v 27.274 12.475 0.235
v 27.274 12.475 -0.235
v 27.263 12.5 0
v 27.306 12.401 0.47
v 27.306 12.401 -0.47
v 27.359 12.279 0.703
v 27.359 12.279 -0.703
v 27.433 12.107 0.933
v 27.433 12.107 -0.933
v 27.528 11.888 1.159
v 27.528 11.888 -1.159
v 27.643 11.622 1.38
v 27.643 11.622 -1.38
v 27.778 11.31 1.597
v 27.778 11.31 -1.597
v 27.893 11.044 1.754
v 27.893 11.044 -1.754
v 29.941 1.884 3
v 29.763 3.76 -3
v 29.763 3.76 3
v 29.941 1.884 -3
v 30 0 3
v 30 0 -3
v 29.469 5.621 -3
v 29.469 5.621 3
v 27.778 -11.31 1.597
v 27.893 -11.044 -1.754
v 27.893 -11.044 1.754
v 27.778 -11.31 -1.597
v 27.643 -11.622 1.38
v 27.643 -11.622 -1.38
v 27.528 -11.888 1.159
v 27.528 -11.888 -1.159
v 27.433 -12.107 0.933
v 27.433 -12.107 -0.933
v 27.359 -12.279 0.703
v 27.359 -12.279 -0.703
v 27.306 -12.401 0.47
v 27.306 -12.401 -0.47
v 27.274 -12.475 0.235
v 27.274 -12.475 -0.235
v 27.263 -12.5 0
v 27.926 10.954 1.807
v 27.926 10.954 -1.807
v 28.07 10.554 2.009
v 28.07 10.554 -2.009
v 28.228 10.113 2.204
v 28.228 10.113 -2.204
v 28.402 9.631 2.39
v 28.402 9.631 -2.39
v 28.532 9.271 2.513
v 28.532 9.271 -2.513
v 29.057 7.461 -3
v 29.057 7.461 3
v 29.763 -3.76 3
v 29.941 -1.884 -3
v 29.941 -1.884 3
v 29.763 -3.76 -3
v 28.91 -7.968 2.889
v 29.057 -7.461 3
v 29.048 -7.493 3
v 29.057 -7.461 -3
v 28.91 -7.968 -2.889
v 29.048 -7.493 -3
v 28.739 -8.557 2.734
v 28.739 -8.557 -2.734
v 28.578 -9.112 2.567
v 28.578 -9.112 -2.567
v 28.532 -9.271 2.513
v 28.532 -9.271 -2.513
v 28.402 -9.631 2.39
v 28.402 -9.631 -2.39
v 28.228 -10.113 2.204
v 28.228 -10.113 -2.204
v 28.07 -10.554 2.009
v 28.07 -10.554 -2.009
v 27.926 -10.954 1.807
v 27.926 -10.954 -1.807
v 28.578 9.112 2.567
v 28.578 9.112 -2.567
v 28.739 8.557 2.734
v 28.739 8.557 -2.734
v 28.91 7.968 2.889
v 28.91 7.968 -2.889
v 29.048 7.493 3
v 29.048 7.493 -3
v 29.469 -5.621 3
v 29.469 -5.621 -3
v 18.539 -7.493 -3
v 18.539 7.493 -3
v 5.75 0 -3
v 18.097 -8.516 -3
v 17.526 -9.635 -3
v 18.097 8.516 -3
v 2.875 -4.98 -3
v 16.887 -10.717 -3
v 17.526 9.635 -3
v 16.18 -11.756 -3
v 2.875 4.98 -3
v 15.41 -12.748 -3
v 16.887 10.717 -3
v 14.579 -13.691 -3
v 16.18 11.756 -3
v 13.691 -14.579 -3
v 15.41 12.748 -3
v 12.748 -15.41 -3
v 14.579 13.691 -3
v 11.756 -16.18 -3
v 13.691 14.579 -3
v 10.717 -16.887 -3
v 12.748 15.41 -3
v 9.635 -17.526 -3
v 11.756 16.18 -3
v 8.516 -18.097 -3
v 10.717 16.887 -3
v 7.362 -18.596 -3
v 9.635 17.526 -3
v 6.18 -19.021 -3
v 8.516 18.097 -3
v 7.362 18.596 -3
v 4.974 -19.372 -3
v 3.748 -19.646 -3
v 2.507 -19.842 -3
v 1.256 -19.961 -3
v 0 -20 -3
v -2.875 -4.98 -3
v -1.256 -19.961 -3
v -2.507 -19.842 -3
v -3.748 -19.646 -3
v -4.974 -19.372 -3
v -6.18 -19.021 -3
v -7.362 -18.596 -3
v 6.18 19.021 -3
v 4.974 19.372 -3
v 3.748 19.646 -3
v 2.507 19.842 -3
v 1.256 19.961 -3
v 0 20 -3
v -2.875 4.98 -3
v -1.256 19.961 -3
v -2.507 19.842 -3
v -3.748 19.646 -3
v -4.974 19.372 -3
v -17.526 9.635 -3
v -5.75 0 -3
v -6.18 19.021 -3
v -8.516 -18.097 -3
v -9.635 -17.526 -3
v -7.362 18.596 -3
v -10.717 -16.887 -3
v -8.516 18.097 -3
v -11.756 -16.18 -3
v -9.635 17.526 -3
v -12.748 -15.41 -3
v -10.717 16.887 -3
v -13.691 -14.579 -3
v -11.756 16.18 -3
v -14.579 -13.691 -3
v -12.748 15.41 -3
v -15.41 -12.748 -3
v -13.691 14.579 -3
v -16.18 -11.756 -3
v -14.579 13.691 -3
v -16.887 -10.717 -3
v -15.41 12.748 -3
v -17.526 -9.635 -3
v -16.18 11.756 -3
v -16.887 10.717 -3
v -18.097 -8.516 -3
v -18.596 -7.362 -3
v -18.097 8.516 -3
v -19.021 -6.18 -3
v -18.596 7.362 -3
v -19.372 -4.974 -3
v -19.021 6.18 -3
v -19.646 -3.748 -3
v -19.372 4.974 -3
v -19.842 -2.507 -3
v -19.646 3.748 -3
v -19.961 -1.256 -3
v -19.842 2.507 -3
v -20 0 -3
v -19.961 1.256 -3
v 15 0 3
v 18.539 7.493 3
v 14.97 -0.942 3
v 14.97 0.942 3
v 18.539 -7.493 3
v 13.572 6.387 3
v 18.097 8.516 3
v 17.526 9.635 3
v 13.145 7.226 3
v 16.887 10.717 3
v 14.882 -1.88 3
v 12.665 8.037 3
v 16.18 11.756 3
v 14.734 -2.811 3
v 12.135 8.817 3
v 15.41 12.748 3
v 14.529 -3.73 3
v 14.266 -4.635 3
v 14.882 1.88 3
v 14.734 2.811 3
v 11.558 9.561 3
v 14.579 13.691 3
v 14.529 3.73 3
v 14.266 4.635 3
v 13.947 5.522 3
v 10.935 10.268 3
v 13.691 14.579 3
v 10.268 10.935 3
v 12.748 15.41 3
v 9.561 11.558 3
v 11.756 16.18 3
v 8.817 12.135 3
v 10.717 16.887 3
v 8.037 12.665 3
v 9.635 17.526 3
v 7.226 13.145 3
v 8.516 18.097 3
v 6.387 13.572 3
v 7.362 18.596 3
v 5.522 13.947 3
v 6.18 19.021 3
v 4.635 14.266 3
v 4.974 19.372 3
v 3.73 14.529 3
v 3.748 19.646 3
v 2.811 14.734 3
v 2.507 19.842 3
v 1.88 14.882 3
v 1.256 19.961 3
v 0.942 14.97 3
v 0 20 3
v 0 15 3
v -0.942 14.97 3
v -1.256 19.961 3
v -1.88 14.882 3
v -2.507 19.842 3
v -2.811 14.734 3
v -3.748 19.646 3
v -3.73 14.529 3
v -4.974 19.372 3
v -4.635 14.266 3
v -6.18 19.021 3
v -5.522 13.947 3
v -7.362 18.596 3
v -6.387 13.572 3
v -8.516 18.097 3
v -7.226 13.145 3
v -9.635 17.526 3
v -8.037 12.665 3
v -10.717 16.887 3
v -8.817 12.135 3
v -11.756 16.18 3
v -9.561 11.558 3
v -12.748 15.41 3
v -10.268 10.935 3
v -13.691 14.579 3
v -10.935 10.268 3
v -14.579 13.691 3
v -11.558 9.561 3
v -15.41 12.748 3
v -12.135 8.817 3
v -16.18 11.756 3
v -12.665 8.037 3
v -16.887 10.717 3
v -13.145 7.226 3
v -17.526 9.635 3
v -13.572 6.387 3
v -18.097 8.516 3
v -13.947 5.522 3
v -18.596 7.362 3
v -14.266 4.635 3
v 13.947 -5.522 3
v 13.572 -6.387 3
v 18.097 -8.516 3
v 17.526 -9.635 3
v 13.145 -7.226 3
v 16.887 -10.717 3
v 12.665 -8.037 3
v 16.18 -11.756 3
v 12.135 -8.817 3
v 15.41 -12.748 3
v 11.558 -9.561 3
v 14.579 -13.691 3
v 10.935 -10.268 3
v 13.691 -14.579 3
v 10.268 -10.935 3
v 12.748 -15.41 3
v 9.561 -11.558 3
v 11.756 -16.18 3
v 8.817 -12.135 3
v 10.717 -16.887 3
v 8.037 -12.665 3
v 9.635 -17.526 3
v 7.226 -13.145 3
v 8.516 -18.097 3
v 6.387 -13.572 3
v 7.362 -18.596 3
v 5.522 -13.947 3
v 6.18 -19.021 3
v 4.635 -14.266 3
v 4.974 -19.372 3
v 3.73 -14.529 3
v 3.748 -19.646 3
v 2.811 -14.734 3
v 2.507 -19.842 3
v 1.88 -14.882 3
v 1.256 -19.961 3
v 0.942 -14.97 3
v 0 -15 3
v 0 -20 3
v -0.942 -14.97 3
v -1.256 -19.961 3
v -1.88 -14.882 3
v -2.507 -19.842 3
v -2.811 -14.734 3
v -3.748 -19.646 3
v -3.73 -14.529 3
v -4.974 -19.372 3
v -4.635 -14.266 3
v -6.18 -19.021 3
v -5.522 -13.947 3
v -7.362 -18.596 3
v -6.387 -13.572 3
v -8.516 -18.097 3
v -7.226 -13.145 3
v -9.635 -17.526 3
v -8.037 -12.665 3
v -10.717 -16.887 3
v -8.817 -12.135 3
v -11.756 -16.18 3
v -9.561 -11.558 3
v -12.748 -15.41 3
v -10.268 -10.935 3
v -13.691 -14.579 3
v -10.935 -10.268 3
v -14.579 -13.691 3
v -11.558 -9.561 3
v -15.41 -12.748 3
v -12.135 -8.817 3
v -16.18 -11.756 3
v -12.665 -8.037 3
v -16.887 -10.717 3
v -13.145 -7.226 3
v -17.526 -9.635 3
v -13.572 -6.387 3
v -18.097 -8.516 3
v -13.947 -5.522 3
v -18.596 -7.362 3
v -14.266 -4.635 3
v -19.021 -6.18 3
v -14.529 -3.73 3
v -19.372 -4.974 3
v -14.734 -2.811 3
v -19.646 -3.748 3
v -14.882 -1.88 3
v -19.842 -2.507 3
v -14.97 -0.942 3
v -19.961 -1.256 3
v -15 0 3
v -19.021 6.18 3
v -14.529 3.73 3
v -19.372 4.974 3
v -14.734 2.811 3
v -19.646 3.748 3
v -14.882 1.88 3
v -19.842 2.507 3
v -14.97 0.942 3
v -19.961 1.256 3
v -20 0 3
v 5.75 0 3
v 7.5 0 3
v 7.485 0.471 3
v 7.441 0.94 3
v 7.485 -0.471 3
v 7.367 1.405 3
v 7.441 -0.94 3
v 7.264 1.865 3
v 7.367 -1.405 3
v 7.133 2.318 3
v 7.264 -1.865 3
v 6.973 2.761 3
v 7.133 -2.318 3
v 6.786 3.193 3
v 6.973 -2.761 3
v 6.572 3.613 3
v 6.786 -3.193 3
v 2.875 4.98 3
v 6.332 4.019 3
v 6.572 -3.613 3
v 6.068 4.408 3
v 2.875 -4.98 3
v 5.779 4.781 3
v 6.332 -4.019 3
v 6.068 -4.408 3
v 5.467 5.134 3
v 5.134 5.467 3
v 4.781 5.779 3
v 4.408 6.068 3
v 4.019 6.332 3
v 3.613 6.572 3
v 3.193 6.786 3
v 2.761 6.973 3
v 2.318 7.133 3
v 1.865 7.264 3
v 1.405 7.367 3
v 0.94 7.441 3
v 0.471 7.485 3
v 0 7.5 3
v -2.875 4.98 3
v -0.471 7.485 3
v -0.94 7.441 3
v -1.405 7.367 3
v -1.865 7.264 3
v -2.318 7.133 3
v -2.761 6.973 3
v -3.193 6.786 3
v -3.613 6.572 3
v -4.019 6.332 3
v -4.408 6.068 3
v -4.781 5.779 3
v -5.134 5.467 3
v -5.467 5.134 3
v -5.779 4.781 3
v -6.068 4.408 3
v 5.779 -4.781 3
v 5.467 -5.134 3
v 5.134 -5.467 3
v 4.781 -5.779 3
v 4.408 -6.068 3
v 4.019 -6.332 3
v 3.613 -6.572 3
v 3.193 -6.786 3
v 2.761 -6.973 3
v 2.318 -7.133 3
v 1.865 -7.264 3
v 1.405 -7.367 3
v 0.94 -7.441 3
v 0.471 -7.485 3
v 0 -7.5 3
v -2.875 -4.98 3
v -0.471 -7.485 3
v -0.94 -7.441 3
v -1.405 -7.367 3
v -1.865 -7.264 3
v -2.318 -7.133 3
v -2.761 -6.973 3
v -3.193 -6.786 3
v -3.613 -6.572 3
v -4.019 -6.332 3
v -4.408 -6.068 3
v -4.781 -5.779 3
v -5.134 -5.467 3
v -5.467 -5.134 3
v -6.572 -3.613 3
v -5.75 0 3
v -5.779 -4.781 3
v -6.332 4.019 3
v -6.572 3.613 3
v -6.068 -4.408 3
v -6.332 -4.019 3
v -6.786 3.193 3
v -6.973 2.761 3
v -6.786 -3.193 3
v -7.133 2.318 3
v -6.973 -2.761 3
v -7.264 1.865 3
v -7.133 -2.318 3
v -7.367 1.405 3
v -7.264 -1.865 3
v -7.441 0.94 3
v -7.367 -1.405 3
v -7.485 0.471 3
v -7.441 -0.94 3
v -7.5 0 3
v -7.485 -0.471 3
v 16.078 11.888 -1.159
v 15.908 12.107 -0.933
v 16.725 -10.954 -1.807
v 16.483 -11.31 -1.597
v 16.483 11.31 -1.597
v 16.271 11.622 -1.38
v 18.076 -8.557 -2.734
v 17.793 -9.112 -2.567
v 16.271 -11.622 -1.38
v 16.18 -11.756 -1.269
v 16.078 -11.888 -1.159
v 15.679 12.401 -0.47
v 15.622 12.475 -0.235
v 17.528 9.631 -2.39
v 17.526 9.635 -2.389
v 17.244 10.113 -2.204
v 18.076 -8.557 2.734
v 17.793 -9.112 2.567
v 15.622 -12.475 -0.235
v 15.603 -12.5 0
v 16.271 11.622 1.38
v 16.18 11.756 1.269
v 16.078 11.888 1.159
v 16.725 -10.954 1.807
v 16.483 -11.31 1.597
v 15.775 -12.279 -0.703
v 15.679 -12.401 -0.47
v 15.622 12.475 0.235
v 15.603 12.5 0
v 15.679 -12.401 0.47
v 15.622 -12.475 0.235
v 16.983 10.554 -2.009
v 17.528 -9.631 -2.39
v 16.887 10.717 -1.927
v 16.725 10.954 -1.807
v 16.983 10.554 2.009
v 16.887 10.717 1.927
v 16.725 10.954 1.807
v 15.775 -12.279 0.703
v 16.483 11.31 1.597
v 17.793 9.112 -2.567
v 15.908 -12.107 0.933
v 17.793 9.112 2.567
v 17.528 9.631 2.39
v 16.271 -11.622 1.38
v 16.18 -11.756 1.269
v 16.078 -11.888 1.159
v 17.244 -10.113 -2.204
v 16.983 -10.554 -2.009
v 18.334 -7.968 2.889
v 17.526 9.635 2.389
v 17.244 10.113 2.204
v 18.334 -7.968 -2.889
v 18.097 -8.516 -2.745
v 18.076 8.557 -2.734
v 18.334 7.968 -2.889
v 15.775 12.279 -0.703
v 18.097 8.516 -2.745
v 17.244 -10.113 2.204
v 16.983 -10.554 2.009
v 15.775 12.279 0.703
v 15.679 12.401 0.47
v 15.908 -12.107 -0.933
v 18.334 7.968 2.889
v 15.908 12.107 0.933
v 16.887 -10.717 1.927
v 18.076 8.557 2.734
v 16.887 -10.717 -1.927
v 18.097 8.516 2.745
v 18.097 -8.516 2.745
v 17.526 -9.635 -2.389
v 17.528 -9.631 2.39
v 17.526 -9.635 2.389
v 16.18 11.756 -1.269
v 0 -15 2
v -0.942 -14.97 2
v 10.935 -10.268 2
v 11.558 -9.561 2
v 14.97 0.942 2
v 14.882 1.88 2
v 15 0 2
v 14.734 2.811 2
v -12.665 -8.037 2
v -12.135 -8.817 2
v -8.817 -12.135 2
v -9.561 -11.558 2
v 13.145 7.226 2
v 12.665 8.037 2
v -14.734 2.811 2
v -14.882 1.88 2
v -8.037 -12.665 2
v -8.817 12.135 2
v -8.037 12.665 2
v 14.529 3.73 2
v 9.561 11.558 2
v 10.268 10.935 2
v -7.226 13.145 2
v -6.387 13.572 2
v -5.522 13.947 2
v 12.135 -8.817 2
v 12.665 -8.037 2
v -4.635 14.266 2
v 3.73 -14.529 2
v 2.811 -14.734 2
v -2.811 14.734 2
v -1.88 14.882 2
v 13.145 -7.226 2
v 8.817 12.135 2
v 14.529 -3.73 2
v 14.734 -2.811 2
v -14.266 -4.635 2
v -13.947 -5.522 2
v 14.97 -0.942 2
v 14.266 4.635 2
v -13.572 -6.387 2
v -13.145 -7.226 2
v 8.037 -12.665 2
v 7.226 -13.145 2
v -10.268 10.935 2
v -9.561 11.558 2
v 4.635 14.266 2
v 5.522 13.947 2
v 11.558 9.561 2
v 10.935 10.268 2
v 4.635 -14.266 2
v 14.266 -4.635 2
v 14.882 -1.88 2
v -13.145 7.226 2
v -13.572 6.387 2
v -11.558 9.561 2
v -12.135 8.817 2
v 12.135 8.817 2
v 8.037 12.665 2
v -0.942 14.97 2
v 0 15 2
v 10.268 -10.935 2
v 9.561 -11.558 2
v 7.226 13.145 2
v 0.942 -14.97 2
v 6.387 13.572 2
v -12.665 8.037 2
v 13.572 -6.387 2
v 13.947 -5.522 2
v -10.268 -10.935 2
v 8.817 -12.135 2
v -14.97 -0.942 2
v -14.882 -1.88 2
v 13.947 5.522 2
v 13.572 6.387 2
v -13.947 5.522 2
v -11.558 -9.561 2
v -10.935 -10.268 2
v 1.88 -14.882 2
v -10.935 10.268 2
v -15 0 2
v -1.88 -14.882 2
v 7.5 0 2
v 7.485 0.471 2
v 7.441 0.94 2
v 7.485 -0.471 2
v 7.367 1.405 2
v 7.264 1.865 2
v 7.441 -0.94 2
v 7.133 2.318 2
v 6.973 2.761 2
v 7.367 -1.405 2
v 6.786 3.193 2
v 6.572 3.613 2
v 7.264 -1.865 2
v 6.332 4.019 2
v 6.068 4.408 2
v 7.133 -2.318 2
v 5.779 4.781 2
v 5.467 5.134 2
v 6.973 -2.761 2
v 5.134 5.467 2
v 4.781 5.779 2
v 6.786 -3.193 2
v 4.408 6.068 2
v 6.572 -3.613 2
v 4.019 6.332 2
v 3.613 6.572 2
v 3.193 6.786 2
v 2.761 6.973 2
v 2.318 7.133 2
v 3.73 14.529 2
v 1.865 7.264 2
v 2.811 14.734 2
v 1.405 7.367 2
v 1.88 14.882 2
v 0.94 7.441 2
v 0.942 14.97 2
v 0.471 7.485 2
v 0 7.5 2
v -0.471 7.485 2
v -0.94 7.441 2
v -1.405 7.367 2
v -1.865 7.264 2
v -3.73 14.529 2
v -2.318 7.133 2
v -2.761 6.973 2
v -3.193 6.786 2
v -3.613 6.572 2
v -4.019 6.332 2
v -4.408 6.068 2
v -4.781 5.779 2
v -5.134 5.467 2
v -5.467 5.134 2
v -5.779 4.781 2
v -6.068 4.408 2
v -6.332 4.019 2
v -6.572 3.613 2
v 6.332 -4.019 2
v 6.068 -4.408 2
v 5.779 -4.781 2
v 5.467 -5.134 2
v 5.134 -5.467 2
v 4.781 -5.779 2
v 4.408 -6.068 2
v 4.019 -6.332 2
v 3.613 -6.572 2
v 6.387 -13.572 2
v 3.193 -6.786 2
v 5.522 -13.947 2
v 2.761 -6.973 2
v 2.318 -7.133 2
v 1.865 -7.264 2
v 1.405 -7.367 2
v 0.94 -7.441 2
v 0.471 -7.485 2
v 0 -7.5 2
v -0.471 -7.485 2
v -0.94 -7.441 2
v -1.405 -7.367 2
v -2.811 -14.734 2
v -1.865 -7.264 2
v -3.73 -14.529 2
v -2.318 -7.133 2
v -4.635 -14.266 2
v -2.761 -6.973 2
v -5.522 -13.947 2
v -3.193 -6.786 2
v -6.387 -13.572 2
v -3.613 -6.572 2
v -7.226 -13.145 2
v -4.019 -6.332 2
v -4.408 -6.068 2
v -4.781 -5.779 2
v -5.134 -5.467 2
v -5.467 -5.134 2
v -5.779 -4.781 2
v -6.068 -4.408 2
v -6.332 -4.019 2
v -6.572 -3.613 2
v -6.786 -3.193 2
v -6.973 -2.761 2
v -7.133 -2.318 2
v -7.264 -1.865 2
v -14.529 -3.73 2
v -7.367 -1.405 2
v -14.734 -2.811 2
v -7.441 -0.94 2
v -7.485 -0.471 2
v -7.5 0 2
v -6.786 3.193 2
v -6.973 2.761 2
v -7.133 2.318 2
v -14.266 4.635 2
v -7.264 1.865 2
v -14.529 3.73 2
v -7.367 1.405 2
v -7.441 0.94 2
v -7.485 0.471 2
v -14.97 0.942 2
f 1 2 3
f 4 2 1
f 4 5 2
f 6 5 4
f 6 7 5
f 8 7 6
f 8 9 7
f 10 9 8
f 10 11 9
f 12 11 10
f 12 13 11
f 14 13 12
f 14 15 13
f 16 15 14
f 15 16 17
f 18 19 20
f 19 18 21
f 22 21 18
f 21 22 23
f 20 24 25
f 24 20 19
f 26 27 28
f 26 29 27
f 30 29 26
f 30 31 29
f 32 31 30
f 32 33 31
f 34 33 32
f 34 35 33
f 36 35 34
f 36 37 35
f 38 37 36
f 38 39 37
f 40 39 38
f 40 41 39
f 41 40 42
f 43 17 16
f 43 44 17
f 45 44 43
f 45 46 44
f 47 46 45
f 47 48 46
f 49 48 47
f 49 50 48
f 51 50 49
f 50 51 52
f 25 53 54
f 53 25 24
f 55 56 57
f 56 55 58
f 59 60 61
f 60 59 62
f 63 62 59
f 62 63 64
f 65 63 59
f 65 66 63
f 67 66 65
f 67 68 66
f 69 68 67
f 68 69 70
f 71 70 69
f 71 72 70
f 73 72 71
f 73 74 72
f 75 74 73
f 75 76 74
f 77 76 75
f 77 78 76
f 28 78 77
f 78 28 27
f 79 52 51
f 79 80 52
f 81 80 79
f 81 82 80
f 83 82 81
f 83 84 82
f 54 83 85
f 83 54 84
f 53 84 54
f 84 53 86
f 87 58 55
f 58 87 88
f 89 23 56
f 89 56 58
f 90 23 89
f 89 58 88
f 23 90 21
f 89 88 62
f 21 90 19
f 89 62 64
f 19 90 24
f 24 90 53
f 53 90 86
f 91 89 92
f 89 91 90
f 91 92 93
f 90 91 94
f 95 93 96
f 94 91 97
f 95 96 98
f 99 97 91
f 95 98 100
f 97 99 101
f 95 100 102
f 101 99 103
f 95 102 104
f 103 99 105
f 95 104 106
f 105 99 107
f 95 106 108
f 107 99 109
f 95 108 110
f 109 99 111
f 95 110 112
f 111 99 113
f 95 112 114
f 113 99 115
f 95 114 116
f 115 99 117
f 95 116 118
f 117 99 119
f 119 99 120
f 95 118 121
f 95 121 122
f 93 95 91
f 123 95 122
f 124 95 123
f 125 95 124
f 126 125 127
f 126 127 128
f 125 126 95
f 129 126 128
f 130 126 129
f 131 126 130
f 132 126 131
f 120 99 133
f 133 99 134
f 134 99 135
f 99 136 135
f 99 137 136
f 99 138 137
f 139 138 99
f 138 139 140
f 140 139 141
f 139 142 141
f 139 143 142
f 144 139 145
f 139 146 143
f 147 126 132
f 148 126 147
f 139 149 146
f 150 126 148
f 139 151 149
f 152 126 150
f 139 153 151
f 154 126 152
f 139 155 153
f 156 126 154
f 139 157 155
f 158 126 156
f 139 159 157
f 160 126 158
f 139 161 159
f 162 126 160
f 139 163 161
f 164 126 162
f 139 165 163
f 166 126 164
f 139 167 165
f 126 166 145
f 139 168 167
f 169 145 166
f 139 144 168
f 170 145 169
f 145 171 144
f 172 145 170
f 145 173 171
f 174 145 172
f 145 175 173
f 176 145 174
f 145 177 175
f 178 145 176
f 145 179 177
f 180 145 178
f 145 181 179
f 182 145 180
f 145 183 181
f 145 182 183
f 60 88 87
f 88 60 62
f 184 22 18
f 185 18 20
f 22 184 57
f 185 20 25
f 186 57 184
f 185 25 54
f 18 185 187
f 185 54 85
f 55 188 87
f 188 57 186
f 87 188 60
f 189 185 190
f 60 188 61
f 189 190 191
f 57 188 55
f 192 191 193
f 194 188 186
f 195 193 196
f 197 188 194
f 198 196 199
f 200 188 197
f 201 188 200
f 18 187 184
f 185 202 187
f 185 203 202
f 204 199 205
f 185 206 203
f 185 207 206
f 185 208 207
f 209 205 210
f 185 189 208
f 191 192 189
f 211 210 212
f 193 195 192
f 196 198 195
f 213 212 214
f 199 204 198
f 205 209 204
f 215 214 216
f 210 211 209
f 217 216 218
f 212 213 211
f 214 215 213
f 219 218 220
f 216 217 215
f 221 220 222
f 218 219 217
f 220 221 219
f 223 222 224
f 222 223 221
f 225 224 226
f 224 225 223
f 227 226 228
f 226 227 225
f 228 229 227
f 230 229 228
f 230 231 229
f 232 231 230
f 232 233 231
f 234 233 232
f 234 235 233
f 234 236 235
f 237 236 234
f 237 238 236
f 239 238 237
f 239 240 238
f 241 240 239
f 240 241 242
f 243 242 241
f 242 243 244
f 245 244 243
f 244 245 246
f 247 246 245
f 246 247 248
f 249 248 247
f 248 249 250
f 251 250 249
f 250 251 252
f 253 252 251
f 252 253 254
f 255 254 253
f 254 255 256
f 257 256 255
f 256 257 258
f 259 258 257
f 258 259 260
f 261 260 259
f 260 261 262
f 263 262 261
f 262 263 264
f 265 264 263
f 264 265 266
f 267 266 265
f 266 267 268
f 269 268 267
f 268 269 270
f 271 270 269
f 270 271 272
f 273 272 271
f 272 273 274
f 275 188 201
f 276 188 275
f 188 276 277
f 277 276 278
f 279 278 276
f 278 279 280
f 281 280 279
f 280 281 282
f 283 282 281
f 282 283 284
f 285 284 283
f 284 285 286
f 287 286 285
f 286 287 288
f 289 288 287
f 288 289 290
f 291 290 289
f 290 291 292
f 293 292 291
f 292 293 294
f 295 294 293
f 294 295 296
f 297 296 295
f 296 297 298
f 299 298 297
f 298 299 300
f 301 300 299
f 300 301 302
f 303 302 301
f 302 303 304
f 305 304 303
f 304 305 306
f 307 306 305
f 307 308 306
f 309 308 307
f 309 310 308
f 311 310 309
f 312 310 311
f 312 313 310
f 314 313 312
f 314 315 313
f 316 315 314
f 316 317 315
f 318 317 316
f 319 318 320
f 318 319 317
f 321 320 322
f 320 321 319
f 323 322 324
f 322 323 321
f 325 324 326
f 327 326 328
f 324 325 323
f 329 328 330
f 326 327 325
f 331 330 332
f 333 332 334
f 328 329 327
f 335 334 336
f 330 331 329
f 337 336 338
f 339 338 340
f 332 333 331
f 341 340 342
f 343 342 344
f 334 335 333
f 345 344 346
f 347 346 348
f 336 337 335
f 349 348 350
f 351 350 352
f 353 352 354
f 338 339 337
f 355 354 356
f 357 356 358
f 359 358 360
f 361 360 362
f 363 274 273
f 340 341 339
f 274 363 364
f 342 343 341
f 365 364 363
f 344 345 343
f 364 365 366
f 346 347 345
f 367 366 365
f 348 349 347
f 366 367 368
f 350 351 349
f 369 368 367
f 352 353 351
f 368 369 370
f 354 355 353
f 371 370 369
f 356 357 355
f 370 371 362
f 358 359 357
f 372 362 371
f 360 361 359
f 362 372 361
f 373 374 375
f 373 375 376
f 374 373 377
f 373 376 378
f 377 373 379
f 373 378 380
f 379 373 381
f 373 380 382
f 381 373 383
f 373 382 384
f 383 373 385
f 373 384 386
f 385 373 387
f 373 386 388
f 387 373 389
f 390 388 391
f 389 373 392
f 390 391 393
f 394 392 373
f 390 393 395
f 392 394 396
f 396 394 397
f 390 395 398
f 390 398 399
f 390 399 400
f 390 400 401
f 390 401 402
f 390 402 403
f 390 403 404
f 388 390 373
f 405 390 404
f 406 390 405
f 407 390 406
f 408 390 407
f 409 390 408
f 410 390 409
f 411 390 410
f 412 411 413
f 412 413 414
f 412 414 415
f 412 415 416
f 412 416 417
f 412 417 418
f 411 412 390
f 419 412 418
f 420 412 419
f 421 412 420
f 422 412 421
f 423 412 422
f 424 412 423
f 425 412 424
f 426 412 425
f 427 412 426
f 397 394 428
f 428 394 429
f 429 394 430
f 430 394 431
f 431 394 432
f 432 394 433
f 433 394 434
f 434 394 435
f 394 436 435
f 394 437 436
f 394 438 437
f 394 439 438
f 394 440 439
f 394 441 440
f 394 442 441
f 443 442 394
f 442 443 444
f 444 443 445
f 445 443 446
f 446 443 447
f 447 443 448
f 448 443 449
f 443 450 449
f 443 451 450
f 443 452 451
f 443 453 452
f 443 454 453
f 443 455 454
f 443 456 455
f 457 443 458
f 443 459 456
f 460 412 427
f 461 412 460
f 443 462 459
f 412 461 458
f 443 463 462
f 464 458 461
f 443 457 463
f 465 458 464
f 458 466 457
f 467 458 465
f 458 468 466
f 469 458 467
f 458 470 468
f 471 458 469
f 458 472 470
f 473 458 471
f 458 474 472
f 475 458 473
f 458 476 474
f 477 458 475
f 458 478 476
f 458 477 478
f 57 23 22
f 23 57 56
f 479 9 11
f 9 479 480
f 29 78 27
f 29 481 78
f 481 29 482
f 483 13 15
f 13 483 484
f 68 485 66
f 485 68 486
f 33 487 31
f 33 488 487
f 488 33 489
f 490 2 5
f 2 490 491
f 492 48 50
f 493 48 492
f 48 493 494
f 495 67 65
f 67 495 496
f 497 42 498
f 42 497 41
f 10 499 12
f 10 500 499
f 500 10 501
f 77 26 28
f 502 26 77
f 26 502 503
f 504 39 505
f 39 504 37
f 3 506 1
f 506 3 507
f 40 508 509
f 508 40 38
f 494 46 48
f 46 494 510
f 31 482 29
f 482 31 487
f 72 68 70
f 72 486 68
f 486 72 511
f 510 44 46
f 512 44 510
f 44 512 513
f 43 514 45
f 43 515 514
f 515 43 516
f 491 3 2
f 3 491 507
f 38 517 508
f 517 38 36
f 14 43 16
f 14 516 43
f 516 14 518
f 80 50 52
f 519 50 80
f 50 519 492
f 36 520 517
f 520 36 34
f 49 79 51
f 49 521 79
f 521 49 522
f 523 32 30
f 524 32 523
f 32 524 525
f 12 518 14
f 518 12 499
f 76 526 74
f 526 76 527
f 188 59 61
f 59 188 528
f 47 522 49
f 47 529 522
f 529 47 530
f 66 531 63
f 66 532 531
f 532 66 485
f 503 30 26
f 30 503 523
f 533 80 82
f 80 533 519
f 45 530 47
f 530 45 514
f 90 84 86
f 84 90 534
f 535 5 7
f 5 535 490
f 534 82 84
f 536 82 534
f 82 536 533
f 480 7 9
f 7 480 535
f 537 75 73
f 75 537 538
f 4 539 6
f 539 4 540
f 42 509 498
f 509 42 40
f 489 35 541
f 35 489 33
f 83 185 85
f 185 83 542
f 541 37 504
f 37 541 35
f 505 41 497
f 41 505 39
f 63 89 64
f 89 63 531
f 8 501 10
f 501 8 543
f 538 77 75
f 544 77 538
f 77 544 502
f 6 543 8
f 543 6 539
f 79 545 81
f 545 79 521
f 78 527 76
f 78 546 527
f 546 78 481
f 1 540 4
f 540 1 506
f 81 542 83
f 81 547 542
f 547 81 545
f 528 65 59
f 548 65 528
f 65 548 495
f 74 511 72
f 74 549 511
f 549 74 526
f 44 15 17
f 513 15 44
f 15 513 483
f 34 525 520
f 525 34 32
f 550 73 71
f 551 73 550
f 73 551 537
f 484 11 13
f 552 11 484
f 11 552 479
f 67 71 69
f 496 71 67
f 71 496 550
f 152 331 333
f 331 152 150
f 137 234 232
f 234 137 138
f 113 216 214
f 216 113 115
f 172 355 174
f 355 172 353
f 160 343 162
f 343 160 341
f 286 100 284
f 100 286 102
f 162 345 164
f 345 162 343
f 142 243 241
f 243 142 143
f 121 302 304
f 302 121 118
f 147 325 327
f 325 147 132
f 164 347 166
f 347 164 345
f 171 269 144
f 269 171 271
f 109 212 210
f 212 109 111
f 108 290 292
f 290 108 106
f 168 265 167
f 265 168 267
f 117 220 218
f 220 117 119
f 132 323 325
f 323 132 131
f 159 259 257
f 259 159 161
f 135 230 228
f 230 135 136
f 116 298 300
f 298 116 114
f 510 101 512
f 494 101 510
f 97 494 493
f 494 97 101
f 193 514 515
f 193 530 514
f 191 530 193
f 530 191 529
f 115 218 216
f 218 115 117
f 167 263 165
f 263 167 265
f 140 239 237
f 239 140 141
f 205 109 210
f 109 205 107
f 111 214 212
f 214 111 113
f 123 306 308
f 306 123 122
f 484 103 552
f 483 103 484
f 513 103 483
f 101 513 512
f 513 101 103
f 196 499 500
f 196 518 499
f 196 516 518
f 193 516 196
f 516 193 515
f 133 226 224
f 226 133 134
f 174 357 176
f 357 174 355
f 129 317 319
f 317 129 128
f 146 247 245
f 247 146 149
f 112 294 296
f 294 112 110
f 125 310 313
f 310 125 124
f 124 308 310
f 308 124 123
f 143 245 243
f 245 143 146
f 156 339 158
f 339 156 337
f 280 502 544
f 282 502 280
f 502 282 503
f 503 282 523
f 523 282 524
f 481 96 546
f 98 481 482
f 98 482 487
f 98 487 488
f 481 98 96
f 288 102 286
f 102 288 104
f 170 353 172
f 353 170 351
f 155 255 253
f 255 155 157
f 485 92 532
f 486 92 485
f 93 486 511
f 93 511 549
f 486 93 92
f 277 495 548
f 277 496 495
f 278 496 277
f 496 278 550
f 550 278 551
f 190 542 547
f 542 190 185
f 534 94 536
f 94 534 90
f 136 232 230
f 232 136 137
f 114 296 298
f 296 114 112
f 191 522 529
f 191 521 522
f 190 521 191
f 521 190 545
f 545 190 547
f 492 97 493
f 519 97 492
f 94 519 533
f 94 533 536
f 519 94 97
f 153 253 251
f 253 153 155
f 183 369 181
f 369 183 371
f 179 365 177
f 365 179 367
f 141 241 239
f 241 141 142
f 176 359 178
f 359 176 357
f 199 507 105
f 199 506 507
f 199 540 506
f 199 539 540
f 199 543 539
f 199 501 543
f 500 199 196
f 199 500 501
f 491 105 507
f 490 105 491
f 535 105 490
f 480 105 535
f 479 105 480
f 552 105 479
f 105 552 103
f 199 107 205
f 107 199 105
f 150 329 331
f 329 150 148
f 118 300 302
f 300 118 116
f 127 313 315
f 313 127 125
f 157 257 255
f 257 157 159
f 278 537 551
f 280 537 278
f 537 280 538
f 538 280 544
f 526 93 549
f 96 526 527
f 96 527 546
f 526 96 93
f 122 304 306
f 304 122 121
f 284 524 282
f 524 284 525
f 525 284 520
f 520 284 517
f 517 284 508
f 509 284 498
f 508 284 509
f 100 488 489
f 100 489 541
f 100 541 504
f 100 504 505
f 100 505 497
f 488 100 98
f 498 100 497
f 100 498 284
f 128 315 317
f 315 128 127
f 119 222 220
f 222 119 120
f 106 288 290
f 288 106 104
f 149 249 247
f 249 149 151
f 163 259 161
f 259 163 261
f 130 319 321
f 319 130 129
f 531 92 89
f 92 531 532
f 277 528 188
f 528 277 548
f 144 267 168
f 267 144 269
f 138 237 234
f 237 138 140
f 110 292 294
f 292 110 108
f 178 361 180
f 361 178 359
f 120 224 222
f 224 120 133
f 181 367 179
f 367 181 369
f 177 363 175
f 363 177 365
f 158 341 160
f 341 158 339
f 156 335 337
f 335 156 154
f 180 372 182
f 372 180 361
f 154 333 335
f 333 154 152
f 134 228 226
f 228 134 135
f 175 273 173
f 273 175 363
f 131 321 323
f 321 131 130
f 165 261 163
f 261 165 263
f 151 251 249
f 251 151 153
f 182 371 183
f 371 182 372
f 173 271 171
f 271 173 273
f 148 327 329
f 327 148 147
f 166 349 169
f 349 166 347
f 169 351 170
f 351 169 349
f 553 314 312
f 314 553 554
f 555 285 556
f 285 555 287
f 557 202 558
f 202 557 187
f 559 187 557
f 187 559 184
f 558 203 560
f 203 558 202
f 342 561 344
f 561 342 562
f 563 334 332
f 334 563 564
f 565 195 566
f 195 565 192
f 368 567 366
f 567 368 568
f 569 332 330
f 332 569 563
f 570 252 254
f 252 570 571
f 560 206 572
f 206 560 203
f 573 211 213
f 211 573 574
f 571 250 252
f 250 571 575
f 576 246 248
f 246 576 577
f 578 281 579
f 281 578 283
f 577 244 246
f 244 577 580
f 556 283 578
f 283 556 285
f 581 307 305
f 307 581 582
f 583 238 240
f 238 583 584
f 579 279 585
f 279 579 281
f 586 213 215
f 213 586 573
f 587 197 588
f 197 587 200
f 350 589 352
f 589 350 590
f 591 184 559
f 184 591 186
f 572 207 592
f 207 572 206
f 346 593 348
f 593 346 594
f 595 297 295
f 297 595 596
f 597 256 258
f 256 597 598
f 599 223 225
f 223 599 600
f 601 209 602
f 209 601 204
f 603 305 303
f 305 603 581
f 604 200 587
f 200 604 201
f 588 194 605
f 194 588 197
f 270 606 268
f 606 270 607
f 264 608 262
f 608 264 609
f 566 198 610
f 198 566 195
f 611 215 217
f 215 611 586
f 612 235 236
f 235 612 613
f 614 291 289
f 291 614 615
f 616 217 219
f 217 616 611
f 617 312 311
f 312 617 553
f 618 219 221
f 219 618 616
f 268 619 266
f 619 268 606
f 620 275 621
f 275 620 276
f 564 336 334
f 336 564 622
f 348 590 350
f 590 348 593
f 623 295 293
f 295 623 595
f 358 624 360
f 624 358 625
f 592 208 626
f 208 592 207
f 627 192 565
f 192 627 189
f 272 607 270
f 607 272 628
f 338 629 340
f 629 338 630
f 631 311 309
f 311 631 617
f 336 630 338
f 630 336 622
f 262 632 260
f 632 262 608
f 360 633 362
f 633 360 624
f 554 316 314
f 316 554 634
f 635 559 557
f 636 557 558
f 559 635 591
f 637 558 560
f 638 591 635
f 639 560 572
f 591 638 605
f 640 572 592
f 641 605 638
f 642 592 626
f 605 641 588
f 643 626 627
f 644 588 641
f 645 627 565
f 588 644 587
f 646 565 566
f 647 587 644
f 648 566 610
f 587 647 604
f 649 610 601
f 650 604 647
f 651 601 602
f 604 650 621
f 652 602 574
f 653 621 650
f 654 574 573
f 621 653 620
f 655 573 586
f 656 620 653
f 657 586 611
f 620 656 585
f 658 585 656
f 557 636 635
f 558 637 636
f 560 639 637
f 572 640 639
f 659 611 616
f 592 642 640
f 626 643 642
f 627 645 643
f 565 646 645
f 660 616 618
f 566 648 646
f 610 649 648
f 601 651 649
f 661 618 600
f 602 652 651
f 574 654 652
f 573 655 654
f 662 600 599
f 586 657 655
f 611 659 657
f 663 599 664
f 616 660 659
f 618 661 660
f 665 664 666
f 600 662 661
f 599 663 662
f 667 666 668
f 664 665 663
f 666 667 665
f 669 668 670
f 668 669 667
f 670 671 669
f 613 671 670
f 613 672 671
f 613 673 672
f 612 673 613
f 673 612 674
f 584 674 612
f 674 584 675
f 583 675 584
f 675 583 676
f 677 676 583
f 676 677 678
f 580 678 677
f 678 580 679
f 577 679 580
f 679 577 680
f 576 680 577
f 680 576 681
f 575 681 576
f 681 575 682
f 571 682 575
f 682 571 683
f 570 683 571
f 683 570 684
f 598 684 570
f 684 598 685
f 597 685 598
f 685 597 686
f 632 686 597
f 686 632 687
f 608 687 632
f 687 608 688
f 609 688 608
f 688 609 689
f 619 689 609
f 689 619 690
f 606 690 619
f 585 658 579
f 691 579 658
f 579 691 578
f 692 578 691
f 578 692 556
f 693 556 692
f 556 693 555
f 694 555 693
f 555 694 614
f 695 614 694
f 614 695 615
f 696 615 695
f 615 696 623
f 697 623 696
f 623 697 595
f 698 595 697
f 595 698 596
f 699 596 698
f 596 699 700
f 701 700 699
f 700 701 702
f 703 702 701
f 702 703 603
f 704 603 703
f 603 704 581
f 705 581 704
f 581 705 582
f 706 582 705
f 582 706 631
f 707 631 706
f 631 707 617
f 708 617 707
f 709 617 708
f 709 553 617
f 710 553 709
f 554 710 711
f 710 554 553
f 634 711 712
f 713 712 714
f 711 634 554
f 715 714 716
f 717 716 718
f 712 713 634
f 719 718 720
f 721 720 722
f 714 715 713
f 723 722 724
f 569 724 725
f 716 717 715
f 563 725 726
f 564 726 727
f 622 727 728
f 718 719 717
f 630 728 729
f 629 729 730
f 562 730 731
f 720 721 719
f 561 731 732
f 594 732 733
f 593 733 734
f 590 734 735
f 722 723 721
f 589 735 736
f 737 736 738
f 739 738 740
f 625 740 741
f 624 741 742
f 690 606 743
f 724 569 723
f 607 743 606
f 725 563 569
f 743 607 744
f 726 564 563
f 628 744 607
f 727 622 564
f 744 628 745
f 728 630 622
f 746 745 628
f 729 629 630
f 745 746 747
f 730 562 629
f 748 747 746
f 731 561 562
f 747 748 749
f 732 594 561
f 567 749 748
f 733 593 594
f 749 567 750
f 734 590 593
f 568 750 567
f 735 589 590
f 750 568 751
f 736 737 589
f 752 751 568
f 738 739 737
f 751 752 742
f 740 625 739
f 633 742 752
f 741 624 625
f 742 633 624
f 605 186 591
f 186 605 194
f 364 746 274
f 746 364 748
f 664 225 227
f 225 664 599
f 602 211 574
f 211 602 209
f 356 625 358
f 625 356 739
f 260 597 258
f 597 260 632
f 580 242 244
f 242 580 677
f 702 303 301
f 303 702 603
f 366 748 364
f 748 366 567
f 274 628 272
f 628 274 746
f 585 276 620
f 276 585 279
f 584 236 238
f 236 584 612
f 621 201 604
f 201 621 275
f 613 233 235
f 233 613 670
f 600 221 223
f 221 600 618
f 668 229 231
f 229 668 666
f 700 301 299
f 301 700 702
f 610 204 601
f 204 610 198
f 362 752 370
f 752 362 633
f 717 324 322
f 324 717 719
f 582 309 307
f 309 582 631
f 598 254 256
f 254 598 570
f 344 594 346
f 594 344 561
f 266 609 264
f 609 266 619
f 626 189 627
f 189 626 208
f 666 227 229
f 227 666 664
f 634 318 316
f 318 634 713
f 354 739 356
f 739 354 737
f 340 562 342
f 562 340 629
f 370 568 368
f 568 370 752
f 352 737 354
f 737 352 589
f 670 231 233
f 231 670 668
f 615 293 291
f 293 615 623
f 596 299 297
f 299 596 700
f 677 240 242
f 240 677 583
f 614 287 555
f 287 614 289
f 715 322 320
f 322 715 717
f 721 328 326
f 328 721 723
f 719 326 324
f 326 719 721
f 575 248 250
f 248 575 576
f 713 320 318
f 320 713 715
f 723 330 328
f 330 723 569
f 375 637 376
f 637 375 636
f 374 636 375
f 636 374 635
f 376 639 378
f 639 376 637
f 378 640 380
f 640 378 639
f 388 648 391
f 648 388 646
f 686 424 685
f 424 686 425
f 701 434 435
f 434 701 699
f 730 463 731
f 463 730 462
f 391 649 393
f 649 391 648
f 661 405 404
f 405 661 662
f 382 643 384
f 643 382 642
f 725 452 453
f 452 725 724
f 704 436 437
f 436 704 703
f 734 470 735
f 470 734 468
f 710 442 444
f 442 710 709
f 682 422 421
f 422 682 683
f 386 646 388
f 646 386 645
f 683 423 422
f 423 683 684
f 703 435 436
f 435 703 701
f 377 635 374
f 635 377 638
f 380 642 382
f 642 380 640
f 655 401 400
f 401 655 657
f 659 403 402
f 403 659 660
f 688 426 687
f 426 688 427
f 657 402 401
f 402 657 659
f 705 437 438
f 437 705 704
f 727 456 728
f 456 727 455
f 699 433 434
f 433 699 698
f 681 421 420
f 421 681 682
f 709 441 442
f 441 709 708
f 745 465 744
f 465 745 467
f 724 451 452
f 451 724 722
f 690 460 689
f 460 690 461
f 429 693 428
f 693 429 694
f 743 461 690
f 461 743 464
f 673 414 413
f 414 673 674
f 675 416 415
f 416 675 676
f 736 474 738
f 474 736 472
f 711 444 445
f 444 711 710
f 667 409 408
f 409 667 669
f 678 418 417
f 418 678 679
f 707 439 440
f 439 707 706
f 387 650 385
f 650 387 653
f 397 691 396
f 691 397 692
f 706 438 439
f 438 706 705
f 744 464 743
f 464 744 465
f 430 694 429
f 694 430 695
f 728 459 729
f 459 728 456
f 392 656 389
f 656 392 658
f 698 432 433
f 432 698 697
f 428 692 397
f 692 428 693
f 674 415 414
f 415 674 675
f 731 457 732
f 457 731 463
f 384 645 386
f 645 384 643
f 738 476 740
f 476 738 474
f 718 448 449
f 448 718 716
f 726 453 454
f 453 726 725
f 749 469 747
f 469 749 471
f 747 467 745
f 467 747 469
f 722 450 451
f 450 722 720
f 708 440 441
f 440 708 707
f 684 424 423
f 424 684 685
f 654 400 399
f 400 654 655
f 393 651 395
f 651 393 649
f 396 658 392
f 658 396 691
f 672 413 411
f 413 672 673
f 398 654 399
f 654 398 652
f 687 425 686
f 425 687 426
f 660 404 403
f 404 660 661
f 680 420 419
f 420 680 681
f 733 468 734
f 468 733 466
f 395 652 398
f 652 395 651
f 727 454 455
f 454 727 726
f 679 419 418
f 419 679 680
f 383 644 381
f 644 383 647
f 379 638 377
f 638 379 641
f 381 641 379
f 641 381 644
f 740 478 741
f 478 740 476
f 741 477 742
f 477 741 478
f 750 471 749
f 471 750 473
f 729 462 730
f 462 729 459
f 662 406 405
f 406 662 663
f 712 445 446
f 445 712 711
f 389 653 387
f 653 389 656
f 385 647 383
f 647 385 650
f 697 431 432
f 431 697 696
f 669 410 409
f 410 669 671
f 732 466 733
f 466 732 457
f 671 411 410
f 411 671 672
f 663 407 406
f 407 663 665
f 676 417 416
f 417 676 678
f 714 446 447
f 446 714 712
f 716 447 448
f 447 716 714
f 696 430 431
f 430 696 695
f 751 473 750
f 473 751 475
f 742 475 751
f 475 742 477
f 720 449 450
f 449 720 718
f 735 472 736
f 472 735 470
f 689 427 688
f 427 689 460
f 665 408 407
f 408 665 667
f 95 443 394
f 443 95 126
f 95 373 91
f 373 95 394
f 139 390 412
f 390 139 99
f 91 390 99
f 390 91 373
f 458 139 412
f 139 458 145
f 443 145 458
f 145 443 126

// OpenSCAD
$fn=100;

BohrD=11.5; // M6 Schluesselweite
Nut=6;

difference() {
    union() {
        cylinder(h=Nut,d=40,center=true);       // Hauptkoerper
        
        // Verriegelungsnase
        intersection()
        {
            cylinder(h=Nut,d=60,center=true);
            translate([50,0,0]) scale([1,1,0.3]) rotate([0,90,0]) cylinder(h=100,d=25,center=true);
        }
    }
    cylinder(h=100,d=BohrD,center=true, $fn=6);    // Sechskant

    difference() { // Freibereich RiKuLa
        translate([0,0,7]) cylinder(h=10,d=30,center=true);
        cylinder(h=100,d=15,center=true);
    }
}
